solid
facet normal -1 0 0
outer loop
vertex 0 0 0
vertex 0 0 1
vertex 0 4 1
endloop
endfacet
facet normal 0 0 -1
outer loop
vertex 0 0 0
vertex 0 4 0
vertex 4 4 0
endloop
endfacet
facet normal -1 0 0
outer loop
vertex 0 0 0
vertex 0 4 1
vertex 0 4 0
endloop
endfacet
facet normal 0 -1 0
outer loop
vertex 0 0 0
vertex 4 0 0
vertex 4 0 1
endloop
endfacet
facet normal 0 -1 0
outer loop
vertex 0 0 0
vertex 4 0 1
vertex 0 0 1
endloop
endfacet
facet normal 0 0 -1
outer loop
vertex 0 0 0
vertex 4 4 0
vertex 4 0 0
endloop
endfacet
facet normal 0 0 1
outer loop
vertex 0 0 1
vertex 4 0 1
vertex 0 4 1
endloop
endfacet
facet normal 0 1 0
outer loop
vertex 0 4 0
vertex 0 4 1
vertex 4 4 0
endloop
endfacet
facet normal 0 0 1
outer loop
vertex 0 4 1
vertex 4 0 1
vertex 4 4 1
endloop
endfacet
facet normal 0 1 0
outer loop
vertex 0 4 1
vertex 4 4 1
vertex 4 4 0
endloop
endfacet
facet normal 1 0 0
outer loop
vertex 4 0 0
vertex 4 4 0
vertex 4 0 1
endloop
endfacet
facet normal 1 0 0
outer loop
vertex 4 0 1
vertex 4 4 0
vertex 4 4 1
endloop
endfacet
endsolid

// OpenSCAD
/* Warning, this is a very basic generator with a lot of approximation 
input data : [VQFN, UFB, 4x4x1mm, 24, , A, C04-21549A]
generated by com.zoubworld.electronics.cad.model3d.Basic
Date : Sun Feb 15 10:50:49 CET 2026
*/

//body
color("black")
translate([0,0,0])
cube([4.0,4.0,1.0], center=false);
